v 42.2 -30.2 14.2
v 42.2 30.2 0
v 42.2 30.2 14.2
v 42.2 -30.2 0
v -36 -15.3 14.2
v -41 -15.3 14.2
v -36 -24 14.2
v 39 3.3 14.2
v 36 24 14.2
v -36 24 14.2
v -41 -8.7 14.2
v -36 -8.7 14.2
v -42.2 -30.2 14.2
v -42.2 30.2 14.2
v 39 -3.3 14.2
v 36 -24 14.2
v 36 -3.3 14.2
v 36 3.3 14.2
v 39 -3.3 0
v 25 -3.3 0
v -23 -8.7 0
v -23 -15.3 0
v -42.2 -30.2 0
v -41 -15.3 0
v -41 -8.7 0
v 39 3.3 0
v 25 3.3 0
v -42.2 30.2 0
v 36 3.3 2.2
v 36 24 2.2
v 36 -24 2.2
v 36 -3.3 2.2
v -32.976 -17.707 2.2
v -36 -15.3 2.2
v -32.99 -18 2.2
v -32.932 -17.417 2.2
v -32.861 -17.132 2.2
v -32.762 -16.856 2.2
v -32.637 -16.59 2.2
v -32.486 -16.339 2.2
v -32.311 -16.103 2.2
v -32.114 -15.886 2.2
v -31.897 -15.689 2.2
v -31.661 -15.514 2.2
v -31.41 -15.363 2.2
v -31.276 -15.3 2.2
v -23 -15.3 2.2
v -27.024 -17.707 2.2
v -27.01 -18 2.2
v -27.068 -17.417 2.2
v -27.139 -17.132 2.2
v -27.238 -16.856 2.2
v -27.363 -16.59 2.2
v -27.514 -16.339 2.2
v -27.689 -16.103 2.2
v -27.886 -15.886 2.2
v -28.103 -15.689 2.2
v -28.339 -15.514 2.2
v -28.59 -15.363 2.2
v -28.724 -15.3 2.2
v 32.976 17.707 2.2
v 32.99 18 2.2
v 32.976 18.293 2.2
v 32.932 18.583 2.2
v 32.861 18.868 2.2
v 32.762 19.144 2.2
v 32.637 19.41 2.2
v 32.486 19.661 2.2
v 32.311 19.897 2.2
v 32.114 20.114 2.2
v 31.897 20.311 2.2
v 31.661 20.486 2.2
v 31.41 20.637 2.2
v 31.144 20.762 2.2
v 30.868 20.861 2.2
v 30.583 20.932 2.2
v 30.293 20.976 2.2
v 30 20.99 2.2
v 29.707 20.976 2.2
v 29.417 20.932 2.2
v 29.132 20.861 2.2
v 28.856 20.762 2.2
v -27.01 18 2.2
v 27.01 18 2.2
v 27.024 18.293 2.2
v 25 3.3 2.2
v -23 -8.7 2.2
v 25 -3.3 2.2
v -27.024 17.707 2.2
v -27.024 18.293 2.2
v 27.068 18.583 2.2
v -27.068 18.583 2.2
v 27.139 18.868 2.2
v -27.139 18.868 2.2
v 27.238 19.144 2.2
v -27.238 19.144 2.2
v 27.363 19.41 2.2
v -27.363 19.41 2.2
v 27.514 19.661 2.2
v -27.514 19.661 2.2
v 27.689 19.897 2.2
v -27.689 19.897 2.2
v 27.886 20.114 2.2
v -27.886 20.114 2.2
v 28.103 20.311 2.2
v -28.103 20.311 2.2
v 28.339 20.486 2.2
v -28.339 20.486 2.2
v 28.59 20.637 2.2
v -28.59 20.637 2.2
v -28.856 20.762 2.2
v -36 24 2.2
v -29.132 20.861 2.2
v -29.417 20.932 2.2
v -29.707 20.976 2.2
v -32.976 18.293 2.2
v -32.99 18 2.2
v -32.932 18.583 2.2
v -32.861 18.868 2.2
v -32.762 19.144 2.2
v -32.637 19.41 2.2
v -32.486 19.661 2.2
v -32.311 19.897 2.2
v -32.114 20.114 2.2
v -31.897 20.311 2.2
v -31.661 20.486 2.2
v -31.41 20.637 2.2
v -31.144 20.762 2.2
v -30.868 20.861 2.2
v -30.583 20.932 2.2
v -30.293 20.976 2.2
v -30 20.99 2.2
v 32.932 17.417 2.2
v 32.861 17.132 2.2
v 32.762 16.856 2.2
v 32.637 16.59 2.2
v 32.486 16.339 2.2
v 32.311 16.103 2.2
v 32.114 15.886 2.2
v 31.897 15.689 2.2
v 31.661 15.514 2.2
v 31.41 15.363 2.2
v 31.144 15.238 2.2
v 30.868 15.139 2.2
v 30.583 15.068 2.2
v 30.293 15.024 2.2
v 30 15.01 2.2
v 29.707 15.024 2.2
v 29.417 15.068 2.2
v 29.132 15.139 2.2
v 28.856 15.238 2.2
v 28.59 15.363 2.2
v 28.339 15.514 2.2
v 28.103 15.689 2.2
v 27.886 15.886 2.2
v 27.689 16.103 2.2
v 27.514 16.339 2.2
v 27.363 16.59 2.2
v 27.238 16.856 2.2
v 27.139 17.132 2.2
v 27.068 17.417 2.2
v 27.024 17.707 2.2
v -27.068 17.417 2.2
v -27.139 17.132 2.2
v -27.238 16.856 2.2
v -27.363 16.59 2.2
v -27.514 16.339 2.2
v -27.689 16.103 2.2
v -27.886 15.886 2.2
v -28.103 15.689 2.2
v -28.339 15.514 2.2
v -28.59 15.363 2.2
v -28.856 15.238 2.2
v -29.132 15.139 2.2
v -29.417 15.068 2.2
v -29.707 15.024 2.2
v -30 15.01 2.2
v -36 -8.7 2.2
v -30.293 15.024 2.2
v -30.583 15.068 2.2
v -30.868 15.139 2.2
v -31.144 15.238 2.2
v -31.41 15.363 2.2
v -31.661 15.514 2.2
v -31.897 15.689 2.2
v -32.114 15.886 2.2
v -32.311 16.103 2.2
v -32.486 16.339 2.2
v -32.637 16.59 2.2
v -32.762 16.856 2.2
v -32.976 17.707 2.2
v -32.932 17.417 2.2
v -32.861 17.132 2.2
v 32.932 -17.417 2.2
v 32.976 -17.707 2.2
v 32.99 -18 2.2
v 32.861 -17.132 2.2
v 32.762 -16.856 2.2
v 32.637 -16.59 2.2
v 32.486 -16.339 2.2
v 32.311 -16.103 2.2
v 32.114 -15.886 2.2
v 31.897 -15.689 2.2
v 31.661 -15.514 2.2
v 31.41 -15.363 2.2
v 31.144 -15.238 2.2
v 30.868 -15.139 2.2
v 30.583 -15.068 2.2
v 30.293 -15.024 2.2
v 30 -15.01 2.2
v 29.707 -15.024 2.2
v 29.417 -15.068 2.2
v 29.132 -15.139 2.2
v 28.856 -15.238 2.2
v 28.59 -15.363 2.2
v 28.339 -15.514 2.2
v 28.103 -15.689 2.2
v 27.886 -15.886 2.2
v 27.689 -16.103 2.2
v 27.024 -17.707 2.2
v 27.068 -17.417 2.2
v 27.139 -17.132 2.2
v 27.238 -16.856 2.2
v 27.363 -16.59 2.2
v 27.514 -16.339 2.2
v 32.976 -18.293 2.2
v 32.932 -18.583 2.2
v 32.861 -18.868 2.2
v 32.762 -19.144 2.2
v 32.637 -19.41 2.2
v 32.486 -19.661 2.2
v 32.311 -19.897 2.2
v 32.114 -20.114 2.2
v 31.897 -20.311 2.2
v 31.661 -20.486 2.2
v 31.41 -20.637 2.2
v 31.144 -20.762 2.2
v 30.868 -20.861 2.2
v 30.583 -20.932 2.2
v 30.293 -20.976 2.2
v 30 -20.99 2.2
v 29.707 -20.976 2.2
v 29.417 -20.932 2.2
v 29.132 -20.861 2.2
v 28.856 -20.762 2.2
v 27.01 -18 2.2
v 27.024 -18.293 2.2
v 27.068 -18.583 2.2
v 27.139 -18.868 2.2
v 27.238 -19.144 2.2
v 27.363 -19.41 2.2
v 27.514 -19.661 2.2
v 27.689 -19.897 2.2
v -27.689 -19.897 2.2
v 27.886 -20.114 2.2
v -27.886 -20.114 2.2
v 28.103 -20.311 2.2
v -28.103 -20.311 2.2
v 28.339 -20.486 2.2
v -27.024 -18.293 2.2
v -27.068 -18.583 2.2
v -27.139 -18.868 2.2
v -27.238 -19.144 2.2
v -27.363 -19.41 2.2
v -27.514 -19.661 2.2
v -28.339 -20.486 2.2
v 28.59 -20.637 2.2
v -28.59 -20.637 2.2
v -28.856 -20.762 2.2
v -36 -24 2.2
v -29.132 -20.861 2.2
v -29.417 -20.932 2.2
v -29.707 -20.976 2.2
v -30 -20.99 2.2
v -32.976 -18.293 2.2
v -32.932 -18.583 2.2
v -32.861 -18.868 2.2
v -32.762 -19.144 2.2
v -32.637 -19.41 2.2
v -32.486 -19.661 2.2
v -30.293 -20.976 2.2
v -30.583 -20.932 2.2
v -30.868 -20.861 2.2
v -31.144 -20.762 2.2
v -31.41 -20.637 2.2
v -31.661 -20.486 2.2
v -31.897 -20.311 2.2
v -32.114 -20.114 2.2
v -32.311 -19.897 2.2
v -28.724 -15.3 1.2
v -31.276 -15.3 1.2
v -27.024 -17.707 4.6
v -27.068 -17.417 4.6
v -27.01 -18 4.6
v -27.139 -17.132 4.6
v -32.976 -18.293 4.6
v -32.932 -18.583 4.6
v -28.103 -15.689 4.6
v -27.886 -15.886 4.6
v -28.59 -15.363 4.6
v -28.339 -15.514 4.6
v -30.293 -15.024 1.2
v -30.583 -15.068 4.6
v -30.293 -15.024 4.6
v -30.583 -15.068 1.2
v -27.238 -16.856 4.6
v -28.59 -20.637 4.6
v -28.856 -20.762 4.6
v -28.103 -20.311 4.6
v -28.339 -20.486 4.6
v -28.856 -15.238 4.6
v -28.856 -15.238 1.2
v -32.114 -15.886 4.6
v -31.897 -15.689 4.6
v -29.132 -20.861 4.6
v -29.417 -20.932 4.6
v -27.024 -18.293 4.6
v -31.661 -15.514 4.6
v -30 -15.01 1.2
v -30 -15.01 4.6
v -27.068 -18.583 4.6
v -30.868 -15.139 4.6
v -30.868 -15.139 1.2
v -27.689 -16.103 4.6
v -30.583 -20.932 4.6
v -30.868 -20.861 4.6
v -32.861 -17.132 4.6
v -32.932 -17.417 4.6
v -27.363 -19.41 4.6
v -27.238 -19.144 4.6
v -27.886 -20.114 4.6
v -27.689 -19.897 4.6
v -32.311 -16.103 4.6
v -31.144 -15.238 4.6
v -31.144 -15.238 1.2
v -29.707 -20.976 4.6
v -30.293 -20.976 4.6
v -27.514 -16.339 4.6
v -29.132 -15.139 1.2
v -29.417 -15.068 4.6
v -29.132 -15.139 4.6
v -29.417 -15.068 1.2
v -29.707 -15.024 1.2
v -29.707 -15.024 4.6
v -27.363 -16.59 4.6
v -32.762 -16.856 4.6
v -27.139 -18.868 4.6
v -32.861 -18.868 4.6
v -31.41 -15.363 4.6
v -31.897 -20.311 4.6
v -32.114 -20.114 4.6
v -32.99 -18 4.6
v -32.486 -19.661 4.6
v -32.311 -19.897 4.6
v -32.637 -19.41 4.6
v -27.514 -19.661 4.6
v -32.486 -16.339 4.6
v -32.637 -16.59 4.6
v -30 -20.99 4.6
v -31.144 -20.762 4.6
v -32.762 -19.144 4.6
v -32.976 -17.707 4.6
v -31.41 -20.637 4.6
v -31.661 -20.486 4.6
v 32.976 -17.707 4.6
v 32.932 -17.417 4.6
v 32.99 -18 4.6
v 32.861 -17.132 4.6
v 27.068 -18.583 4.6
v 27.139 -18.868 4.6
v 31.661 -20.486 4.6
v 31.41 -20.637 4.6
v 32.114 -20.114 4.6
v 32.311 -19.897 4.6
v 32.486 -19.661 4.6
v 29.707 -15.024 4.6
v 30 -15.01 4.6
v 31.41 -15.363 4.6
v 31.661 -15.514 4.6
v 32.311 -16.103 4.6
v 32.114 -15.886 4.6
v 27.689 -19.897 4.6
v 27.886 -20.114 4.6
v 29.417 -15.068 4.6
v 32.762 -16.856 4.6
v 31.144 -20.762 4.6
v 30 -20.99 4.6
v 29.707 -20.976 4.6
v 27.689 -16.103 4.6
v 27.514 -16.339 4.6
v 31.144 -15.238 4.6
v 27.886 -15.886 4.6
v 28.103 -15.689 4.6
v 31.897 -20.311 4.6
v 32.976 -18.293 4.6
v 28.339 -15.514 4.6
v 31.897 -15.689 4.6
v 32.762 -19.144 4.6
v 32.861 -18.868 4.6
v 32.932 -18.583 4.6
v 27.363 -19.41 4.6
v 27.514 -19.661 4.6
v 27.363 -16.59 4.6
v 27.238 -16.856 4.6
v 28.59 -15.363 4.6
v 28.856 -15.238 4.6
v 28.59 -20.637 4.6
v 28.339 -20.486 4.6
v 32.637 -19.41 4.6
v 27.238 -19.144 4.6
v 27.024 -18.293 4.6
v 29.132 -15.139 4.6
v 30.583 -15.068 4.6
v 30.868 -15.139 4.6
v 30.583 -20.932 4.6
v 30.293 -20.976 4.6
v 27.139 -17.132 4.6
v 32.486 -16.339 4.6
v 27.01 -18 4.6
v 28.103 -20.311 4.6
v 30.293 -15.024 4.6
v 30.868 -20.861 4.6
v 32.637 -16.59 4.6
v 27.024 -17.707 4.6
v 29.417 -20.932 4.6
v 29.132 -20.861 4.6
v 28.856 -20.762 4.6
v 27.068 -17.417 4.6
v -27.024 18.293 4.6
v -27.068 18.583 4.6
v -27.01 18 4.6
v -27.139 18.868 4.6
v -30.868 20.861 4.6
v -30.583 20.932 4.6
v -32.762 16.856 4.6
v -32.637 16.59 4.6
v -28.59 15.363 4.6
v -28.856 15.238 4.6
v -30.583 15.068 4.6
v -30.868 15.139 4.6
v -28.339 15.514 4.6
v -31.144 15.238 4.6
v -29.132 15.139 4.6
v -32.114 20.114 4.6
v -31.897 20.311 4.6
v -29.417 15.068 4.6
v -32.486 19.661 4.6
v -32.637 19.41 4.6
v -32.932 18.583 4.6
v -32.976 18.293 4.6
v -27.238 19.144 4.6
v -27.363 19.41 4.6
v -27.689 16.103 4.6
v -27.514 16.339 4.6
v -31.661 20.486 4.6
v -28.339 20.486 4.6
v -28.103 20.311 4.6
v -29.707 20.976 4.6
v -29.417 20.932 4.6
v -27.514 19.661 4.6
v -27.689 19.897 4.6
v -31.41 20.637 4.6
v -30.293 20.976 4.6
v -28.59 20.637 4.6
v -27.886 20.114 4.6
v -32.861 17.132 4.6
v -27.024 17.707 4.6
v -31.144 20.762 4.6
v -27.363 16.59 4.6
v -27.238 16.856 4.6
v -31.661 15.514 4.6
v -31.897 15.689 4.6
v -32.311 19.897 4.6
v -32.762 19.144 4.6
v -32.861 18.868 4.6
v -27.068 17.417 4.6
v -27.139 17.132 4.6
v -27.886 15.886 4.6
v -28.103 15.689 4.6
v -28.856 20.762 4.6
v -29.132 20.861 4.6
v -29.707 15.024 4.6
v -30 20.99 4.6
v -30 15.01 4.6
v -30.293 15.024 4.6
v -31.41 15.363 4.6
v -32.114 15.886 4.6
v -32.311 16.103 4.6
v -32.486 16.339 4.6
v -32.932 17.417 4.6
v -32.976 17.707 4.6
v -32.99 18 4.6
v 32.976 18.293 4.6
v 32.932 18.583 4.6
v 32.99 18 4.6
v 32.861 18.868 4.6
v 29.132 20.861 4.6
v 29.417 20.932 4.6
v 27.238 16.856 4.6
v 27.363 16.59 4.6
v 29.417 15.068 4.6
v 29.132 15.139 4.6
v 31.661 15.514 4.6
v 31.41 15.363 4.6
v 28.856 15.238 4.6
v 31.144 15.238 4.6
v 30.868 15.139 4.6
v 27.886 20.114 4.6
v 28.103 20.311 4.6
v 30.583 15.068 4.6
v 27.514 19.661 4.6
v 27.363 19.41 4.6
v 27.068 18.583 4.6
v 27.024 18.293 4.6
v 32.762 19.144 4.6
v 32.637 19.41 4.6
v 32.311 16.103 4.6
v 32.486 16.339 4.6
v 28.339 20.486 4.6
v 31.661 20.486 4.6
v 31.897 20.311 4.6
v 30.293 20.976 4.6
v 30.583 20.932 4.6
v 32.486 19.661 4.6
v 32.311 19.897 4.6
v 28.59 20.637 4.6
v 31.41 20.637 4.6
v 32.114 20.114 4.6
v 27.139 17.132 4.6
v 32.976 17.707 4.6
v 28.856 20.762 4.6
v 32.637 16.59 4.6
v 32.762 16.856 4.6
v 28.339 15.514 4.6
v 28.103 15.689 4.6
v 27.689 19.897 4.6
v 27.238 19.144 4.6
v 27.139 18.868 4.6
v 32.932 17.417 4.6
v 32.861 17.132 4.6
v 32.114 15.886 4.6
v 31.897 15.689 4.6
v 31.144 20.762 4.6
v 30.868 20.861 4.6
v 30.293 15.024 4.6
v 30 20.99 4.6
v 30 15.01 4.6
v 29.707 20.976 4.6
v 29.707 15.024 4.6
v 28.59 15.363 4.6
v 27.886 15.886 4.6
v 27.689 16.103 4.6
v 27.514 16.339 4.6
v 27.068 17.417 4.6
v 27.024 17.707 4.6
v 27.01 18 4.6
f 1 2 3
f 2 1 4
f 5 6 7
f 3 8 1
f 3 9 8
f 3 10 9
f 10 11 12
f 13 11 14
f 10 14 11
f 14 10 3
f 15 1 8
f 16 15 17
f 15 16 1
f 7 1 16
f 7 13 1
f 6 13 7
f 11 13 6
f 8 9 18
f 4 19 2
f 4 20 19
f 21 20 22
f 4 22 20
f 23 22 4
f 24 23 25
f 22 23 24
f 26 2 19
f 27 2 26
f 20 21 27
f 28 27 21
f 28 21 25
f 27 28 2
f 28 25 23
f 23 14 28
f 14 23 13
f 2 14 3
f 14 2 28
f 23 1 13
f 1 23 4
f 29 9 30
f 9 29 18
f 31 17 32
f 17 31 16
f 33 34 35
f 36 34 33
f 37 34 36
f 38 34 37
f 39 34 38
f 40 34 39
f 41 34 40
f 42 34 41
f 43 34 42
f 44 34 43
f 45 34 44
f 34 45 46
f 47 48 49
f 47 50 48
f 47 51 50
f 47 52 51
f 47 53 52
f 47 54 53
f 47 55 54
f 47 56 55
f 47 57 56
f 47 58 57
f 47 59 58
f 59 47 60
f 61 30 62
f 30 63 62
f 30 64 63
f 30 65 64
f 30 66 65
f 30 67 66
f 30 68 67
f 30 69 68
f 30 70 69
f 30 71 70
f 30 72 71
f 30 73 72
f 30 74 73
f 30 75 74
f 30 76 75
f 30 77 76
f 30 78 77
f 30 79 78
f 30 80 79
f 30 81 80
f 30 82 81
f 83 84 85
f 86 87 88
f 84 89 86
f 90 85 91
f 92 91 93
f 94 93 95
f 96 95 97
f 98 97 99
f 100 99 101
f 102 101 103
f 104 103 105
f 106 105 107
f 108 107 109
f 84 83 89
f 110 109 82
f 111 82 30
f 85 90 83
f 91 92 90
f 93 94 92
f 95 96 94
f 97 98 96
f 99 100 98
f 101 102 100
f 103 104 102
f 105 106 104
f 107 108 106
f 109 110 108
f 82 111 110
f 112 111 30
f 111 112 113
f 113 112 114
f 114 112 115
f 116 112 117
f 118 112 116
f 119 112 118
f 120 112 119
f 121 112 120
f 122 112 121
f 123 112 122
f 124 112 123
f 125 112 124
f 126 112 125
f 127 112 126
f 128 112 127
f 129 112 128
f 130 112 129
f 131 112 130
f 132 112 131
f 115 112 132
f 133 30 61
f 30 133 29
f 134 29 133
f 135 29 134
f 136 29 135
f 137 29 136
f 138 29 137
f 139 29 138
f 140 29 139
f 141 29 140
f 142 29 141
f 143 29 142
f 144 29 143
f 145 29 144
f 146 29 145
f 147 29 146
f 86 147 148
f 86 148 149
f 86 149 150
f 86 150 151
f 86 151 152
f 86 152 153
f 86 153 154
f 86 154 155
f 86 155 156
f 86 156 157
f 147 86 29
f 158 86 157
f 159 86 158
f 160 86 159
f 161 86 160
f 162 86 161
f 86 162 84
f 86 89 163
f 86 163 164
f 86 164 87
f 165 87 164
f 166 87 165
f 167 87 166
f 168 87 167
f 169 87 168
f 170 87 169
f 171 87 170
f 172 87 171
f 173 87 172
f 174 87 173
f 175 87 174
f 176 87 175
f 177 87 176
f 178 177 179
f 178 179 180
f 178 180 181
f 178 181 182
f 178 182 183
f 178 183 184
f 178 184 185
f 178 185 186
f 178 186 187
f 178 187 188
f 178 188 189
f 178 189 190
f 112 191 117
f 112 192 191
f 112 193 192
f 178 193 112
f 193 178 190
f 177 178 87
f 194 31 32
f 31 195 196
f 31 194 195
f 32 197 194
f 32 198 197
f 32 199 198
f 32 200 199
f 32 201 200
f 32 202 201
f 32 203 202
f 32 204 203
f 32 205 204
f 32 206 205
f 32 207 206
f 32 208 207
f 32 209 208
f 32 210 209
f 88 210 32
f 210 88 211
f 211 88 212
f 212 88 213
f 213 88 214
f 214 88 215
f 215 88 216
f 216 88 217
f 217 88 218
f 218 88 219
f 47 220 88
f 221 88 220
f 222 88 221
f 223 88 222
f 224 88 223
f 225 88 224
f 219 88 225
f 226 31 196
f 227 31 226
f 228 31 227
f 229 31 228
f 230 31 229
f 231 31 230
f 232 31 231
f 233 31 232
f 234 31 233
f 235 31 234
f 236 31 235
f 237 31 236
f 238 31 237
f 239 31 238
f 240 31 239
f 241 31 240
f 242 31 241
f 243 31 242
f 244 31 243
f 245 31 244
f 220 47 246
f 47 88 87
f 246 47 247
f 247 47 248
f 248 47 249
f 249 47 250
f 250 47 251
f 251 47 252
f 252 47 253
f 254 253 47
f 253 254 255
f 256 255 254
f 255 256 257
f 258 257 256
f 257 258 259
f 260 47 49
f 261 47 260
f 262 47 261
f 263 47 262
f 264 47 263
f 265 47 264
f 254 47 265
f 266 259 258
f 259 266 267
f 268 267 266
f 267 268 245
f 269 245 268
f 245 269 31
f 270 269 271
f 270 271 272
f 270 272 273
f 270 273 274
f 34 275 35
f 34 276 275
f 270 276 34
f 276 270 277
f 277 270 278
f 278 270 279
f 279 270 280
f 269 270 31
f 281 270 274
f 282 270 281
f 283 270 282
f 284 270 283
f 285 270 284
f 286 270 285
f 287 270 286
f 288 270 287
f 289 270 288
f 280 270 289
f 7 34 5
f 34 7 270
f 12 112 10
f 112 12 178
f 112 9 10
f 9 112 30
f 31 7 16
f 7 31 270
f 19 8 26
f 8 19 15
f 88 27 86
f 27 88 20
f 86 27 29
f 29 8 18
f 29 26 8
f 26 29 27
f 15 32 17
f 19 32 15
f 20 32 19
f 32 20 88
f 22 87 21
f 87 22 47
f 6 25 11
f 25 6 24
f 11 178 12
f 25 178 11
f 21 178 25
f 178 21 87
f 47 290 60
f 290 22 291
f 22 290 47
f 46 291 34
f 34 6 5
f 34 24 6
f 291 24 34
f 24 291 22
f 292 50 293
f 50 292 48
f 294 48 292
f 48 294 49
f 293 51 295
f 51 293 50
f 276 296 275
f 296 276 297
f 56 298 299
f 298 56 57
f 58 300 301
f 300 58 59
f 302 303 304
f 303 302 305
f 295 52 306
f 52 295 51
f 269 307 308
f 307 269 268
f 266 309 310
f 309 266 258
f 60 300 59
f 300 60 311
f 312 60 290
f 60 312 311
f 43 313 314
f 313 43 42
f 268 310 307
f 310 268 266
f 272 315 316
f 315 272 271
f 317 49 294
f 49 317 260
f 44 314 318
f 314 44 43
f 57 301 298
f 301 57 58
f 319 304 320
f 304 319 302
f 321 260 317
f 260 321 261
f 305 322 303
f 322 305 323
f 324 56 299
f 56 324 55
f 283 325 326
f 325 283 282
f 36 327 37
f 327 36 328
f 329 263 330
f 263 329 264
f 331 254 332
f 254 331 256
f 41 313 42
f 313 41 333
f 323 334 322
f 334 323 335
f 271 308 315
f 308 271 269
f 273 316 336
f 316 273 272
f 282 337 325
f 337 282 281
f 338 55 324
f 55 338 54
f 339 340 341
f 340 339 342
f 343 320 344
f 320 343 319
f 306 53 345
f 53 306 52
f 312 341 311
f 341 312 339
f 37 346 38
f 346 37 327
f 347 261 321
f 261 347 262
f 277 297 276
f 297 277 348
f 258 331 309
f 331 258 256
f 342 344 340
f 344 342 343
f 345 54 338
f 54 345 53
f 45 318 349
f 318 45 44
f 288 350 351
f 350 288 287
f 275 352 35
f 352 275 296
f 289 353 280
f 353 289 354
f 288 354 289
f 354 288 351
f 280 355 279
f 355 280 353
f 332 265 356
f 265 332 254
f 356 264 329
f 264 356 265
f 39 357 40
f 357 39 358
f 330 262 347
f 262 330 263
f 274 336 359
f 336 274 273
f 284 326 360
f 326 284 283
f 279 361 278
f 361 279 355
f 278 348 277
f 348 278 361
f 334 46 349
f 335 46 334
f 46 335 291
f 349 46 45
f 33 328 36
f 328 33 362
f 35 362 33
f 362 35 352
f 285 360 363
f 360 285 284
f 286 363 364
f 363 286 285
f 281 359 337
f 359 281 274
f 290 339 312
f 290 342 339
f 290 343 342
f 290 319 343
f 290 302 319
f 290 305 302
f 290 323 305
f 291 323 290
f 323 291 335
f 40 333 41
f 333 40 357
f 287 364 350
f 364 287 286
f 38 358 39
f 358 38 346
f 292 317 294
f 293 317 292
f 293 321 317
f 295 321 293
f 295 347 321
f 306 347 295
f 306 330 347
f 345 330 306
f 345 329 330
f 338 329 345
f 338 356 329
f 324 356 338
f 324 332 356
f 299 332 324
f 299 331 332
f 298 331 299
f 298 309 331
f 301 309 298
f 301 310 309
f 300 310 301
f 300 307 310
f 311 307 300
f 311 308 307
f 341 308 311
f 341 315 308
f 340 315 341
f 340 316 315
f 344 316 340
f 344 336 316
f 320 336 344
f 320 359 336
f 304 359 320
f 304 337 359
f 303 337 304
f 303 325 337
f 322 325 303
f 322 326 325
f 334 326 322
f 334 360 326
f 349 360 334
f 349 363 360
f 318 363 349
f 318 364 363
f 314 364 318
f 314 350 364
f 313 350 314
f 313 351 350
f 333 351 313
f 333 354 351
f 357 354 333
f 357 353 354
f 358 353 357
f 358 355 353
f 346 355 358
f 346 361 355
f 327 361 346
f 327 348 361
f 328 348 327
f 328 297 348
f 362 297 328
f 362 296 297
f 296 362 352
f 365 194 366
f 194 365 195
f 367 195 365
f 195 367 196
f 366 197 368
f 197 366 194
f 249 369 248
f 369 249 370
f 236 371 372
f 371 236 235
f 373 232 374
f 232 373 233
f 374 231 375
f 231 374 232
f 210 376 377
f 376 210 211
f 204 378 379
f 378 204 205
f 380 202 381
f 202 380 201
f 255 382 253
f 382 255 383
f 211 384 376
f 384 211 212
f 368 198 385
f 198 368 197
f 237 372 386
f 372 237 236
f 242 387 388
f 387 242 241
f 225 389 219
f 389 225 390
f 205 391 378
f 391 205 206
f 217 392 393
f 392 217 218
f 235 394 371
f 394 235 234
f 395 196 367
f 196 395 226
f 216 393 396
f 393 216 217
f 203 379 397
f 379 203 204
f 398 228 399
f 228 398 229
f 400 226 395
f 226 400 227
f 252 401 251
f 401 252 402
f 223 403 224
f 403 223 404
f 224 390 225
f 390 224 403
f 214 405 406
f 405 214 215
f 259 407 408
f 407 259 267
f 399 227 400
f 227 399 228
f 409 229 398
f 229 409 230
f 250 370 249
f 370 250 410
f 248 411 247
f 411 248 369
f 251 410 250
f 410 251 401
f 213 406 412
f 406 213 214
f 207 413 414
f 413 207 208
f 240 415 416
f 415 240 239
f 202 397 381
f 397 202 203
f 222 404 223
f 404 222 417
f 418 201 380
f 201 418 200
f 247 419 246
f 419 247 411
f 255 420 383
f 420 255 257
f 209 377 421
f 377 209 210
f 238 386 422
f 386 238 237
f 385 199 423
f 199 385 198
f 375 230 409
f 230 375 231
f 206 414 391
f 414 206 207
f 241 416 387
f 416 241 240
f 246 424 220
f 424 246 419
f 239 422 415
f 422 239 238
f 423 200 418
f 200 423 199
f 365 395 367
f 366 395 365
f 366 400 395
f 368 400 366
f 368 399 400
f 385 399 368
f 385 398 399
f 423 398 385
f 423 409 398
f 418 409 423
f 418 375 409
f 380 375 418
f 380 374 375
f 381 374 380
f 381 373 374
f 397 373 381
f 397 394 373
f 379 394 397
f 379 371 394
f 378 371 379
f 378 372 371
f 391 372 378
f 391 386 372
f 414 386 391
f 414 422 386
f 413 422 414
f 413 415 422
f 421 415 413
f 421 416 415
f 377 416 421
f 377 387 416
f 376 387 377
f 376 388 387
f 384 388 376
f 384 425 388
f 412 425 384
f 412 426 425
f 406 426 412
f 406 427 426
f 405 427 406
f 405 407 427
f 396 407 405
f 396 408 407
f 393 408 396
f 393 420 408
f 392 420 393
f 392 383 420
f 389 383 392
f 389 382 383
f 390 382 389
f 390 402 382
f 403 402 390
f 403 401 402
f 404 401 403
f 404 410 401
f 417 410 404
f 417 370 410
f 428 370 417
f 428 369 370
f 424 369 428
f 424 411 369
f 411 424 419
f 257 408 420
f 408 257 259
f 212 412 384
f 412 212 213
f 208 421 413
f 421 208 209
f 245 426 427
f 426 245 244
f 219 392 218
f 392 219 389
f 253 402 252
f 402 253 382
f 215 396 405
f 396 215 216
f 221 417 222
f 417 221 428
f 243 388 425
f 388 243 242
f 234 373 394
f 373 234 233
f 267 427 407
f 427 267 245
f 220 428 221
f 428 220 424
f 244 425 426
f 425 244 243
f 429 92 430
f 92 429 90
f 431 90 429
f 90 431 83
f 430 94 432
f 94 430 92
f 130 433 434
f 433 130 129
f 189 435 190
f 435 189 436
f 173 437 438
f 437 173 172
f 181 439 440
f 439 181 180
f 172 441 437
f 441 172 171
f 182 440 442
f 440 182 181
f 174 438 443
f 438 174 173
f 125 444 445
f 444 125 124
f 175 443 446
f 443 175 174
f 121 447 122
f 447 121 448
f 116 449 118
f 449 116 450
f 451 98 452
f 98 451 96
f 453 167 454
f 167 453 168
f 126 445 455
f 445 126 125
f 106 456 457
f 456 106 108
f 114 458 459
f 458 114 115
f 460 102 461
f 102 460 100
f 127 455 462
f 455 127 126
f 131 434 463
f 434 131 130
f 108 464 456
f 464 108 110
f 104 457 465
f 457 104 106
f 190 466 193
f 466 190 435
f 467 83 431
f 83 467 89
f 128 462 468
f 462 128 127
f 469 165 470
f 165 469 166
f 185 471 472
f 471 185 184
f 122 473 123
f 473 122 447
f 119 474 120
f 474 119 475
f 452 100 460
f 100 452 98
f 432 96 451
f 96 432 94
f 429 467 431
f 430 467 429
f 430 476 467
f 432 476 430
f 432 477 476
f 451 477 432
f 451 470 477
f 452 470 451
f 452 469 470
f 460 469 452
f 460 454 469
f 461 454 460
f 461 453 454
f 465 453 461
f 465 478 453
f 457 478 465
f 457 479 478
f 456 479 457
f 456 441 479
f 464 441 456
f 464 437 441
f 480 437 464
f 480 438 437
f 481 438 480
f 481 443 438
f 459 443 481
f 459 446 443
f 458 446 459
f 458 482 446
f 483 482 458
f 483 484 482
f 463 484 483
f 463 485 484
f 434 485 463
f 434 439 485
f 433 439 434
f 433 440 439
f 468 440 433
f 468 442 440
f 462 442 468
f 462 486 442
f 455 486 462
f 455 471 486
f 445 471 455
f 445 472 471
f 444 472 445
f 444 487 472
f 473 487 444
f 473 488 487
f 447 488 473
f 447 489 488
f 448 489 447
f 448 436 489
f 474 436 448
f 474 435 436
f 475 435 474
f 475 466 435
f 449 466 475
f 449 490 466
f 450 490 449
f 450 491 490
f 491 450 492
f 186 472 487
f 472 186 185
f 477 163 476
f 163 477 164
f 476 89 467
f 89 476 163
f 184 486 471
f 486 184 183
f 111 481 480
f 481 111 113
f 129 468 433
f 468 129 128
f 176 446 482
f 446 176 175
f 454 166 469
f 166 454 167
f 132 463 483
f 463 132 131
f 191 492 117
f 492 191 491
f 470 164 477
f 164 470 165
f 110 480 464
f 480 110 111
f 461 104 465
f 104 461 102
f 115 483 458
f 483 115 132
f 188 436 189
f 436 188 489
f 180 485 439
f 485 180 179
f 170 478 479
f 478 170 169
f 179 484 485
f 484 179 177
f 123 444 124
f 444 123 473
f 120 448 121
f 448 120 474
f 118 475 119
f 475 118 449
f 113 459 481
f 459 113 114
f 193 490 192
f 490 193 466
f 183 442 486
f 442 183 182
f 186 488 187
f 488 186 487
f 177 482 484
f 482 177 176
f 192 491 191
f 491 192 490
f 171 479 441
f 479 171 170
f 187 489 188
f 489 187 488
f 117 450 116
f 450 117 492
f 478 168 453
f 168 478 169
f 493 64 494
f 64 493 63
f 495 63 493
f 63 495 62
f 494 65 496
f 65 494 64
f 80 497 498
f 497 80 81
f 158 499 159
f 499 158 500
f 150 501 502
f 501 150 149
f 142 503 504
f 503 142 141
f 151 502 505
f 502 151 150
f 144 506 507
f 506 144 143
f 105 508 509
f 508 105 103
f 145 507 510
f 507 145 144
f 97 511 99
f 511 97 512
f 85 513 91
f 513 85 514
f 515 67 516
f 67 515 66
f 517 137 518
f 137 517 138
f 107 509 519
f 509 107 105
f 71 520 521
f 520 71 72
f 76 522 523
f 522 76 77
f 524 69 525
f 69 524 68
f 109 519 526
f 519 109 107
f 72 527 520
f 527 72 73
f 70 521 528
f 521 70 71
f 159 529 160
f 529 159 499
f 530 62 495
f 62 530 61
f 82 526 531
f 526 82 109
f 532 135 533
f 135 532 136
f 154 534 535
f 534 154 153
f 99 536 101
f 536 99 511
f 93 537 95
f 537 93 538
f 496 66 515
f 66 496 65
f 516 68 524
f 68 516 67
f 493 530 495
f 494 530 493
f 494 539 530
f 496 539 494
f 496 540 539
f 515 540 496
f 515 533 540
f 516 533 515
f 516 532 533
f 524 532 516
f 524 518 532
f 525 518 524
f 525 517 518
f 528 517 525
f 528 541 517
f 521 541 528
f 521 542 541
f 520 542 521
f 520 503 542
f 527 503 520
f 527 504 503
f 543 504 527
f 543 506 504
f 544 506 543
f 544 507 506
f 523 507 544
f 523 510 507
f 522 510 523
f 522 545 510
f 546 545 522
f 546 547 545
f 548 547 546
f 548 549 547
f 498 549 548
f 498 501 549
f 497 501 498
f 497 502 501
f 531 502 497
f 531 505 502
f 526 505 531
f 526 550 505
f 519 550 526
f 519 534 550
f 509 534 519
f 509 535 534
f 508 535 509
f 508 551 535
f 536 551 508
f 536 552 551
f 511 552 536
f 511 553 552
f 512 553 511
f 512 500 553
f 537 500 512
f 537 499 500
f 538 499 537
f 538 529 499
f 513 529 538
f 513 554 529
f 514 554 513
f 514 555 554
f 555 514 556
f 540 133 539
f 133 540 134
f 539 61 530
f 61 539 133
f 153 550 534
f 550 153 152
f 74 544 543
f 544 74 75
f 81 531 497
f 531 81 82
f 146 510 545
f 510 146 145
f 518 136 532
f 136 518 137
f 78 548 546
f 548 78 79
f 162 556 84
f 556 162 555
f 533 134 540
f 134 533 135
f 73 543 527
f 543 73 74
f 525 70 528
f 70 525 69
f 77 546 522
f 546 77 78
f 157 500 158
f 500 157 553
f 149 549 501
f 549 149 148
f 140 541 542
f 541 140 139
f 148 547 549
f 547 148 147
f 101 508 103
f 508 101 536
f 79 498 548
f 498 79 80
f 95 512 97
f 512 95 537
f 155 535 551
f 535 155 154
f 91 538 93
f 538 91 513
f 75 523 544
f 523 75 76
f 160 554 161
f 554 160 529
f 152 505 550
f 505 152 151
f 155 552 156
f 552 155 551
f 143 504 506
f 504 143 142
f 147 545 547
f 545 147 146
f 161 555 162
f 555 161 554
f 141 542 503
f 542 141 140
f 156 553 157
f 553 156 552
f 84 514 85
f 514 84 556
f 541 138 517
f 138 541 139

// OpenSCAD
// Task 03: RF daughtercard shield-can and inspection scene
// OpenSCAD stage generated from 01_kicad_mechanical_map.csv.
$fn = 64;
board = [72.000, 48.000, 1.200];
enclosure = [84.400, 60.400, 14.200];
wall = 2.200;
lid_clearance = 1.800;

module standoff(x, y) {
  translate([x, y, board[2]]) cylinder(d=5.980, h=wall + board[2]);
}
module keepout_window(x, y, r) {
  translate([x, y, enclosure[2]/2]) cube([2*r, wall*3, enclosure[2]], center=true);
}
module enclosure_shell() {
  difference() {
    translate([-enclosure[0]/2, -enclosure[1]/2, 0]) cube(enclosure);
    translate([-board[0]/2, -board[1]/2, wall]) cube([board[0], board[1], enclosure[2]]);
    // J1 UFL_ANT side/service keepout
    keepout_window(32.000, 0.000, 7.000);
    // J2 MEZZ_CONN side/service keepout
    keepout_window(-32.000, -12.000, 9.000);
  }
}
// MH1 copied from KiCad at (-30.000, -18.000)
// MH2 copied from KiCad at (30.000, -18.000)
// MH3 copied from KiCad at (-30.000, 18.000)
// MH4 copied from KiCad at (30.000, 18.000)
union() {
  enclosure_shell();
  standoff(-30.000, -18.000);
  standoff(30.000, -18.000);
  standoff(-30.000, 18.000);
  standoff(30.000, 18.000);
}
